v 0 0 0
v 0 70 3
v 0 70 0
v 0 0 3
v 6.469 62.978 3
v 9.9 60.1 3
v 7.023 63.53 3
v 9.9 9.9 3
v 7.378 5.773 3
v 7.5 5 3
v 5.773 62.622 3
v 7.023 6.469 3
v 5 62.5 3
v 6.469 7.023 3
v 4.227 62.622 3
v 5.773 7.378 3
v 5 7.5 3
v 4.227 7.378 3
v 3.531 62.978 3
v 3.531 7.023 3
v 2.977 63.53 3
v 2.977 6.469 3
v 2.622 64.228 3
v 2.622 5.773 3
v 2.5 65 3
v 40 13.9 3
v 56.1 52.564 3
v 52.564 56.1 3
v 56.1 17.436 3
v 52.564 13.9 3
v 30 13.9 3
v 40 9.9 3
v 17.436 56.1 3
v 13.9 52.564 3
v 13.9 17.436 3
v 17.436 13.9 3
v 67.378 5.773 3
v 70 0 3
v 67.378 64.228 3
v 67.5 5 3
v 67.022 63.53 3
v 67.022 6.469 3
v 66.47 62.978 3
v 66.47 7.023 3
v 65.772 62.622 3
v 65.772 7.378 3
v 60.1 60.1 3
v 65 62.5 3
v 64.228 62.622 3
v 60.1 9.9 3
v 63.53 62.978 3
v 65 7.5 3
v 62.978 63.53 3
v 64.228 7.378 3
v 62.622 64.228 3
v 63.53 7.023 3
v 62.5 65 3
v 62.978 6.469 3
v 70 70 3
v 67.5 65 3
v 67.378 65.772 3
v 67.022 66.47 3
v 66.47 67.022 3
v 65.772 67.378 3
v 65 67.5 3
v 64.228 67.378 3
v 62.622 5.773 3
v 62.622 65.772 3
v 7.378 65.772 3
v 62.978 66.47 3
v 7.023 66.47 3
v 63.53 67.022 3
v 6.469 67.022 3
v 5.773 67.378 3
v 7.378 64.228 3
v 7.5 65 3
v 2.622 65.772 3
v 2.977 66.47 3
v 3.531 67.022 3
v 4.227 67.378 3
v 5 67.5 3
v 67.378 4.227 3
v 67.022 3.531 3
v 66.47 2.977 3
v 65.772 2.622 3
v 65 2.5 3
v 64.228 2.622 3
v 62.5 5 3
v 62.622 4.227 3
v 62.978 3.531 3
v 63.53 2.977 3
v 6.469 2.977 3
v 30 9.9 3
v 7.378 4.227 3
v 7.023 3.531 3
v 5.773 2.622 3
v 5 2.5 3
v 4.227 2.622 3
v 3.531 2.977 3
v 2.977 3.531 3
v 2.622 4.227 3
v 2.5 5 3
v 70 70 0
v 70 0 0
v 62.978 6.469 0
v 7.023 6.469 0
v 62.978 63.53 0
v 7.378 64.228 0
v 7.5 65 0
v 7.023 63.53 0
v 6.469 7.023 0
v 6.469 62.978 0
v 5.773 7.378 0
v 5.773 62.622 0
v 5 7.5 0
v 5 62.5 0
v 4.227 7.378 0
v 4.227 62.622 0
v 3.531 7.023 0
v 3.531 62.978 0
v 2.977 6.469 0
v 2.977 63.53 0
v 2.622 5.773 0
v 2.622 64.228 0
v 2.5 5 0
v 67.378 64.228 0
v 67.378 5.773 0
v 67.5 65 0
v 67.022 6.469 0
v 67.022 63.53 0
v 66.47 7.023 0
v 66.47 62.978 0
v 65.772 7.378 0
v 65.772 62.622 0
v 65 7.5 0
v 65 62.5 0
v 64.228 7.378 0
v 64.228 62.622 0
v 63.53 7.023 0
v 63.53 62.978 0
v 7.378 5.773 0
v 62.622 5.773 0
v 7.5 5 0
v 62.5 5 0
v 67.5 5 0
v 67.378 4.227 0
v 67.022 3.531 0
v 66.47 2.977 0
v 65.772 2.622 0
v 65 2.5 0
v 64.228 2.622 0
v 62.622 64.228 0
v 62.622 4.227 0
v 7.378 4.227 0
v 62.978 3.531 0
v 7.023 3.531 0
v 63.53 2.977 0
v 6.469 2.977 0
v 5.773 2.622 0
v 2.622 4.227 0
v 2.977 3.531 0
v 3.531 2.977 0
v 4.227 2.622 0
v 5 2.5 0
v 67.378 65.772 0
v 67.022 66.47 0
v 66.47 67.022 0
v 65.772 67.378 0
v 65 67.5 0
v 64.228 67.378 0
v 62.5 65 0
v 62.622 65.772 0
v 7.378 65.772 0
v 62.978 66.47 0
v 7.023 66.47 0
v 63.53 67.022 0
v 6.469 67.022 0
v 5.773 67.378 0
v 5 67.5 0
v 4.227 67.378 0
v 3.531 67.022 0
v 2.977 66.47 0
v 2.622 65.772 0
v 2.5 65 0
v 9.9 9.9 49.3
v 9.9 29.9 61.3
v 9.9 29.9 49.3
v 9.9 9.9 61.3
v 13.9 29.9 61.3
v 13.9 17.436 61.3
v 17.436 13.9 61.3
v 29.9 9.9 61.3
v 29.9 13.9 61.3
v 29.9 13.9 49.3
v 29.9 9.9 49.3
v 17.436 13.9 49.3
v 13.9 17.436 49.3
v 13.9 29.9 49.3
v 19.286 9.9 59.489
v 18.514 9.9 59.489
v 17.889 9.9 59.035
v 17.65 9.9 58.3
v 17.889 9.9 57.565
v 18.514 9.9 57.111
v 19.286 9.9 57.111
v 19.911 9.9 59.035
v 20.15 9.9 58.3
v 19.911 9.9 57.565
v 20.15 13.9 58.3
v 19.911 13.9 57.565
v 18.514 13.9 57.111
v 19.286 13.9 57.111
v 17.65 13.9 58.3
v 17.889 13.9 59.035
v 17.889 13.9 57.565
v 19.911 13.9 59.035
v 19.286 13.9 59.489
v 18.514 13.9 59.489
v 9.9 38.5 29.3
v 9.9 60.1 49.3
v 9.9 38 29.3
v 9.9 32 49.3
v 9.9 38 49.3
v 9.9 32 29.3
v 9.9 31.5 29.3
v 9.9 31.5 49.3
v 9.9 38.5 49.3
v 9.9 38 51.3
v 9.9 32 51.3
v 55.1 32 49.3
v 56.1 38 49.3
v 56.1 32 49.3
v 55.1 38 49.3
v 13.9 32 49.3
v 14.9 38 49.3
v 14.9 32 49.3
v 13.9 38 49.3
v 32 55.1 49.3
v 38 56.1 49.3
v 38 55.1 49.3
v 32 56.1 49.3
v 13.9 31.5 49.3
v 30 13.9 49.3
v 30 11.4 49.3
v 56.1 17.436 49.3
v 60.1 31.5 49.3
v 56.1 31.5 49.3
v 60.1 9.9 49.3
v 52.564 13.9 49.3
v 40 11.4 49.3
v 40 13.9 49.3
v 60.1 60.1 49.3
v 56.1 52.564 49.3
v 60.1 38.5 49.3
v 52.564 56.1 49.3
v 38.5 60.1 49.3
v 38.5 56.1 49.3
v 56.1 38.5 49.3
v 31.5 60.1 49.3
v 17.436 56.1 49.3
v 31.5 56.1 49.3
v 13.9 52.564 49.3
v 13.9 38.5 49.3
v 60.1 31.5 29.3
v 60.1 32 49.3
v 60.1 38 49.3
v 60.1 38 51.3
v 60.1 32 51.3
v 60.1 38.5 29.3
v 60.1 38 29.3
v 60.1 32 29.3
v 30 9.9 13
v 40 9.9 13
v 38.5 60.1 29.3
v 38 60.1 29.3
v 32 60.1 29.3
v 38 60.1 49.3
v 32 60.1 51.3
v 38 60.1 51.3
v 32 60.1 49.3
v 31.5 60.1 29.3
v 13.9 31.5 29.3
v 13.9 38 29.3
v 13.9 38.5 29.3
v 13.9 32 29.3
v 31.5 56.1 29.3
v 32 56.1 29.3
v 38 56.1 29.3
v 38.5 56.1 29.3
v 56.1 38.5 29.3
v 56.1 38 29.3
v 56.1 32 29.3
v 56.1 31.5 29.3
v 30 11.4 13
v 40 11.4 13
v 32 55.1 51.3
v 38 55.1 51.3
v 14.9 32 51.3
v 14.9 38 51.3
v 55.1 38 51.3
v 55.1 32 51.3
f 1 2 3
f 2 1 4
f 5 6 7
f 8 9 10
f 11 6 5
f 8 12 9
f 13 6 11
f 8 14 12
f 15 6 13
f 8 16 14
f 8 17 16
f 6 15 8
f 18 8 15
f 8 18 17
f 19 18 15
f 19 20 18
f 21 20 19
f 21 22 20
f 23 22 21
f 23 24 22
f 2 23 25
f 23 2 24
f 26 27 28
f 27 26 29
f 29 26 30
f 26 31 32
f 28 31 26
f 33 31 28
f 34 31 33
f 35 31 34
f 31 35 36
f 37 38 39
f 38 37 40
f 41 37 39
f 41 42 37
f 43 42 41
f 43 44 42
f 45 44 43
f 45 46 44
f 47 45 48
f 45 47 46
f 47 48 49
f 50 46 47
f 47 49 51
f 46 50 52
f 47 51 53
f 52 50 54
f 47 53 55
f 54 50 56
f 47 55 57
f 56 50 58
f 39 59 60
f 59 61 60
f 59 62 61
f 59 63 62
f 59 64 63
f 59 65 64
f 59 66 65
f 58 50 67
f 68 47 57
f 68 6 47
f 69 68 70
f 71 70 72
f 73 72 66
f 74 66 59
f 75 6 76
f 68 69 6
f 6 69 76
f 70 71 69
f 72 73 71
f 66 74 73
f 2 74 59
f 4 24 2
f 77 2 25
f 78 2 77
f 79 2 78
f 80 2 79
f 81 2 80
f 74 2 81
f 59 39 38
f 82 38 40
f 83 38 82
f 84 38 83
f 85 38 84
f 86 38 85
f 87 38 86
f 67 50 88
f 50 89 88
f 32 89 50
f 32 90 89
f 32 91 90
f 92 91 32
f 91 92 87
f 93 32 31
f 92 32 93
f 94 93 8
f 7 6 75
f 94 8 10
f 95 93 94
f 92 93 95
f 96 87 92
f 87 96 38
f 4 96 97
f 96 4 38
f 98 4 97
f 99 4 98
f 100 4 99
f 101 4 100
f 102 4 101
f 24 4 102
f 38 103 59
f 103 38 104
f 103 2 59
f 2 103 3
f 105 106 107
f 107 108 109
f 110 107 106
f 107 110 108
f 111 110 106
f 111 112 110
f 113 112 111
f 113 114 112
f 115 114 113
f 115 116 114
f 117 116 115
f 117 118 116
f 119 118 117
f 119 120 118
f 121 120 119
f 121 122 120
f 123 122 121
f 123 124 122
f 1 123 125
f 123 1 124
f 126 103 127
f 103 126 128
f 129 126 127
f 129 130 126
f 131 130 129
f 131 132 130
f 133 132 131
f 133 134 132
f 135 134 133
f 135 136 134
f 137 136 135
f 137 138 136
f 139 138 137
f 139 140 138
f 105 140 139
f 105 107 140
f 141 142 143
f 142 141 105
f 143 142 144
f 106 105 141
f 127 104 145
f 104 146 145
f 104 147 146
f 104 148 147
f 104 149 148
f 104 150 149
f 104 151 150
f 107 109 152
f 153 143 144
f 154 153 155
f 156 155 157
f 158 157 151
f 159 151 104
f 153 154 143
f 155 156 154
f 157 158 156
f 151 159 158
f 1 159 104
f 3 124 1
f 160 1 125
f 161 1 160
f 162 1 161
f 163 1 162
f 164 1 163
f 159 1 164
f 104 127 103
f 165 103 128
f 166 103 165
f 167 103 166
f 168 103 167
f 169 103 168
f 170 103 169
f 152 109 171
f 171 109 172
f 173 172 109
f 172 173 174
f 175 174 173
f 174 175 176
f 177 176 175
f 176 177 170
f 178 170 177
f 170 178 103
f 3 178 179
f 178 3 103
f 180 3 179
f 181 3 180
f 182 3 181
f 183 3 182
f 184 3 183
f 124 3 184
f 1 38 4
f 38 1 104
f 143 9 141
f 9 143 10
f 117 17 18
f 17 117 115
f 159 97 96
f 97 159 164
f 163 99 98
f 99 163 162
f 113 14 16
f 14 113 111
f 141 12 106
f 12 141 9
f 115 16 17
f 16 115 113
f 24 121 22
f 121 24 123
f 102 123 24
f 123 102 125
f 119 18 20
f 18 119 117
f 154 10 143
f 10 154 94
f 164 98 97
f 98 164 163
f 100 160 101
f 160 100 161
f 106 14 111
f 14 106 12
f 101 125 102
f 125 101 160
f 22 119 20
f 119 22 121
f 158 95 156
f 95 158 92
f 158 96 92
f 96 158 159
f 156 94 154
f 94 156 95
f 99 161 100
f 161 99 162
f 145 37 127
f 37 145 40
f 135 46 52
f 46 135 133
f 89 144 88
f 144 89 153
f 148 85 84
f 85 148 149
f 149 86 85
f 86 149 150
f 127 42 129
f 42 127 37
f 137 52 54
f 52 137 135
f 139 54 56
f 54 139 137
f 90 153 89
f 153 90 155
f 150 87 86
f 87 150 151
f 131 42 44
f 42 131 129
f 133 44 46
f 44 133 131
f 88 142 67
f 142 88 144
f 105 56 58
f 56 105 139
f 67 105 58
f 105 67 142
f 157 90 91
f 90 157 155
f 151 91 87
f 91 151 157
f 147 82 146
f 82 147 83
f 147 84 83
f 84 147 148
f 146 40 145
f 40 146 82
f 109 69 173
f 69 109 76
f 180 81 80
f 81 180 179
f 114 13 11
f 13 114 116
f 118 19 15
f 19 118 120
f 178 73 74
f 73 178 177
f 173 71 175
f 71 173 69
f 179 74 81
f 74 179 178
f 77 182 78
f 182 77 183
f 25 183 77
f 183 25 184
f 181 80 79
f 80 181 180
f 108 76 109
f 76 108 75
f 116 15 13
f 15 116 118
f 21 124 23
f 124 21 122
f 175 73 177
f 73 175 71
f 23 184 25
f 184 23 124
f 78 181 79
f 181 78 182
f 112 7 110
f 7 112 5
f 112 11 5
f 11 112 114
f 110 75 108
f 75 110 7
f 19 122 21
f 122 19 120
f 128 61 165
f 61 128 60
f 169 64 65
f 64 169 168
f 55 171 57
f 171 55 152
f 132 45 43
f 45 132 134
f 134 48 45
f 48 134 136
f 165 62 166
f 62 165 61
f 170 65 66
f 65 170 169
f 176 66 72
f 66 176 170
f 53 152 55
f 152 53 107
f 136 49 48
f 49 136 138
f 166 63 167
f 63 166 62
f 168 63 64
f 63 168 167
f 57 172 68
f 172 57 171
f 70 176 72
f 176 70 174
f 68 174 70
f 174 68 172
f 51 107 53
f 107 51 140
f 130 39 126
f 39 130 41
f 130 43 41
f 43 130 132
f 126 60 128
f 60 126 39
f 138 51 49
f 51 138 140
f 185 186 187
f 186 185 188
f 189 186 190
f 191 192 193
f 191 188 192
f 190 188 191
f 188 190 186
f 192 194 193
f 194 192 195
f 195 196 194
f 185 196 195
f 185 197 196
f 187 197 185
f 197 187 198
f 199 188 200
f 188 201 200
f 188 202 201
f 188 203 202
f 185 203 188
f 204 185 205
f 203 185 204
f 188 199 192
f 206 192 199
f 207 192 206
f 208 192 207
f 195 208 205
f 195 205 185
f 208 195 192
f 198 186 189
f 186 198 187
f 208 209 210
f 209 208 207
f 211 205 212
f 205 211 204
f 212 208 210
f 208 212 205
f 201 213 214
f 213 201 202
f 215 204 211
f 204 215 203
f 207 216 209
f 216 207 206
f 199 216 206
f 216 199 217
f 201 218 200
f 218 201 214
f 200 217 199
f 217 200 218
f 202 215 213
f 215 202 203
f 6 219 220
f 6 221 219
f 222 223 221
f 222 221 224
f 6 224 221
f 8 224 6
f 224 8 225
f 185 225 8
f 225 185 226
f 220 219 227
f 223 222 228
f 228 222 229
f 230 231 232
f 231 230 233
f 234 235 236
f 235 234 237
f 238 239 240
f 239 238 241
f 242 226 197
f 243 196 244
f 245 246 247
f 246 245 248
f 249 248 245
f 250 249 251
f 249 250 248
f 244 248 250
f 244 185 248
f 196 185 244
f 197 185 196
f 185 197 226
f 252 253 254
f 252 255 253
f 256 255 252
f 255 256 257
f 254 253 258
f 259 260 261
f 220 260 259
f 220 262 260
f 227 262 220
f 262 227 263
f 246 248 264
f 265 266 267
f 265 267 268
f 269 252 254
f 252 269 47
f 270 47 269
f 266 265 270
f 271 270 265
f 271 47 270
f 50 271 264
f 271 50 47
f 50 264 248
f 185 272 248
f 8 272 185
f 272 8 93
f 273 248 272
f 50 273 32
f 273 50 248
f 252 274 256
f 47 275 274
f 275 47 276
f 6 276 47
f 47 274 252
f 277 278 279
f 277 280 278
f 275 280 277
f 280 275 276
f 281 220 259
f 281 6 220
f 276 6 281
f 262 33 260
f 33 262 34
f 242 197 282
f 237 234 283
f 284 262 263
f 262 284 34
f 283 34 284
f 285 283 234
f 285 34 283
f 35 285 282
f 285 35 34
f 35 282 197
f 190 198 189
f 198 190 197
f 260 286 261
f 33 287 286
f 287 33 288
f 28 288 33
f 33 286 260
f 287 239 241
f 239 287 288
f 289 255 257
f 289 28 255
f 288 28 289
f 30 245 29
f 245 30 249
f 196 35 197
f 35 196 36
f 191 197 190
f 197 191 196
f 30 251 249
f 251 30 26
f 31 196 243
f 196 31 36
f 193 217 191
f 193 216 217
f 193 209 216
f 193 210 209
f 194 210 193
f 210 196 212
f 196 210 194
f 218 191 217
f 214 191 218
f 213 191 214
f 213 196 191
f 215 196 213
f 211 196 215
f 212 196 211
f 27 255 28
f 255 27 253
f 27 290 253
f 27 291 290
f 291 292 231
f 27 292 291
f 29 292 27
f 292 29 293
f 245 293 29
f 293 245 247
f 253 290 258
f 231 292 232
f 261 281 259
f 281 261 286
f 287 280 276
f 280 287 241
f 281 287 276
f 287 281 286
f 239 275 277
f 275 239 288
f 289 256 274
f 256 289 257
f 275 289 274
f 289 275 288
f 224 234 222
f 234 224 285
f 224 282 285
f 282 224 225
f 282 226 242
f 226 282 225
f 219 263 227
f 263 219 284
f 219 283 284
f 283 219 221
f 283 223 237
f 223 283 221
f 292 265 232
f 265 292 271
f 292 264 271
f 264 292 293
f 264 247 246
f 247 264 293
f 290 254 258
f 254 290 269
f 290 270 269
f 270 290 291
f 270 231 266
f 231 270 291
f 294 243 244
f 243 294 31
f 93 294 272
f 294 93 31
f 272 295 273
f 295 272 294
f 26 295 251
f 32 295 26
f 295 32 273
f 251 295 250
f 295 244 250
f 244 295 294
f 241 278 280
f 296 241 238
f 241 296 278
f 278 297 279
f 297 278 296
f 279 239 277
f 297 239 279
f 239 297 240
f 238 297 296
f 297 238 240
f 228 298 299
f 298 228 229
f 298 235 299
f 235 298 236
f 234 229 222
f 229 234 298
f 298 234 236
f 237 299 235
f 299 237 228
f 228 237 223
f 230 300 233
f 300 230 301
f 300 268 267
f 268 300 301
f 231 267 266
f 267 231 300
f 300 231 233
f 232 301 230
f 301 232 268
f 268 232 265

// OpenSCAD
motorSide = 42.2;
motorHeight = 46.3;
motorMountingHoles = 31;
motorHolesLength = 4.5;

baseSide = 70;
baseHeight = 3;

wallWidth = 4;

// mounting base plate
difference()
{
    cube([baseSide, baseSide, baseHeight]);
    
    translate([5, 5, 0]) cylinder(d=5, h=baseHeight, $fn=20);
    translate([baseSide-5, 5, 0]) cylinder(d=5, h=baseHeight, $fn=20);
    translate([5, baseSide-5, 0]) cylinder(d=5, h=baseHeight, $fn=20);
    translate([baseSide-5, baseSide-5, 0]) cylinder(d=5, h=baseHeight, $fn=20);
    
}
// main enclosure
translate([(baseSide-motorSide)/2-wallWidth, (baseSide-motorSide)/2-wallWidth, baseHeight])
{
    difference()
    {
        union()
        {
            cube([motorSide+wallWidth*2, motorSide+wallWidth*2, motorHeight]);
            translate([0, 0, motorHeight])
            {
               difference()
               {
                   // thread hole and support
                   cube([20, 20, 12]);
                   translate([9, 0, 9]) rotate([-90, 0, 0]) cylinder(d=2.5, h=10, $fn=10);
               }
           }
       }
   
        
        translate([wallWidth+sqrt(2)*2.5, wallWidth, 0])
            minkowski()
            {
                cube([motorSide-sqrt(2)*5, motorSide-sqrt(2)*5, motorHeight]);
                rotate([0, 0, 45]) cube([5, 5, motorHeight]);
            }
         
        // latches   
        translate([motorSide/2+wallWidth-3.5, motorSide+wallWidth, motorHeight-20])        
            cube([0.5, wallWidth, 20]);
        translate([motorSide/2+wallWidth+3, motorSide+wallWidth, motorHeight-20])
            cube([0.5, wallWidth, 20]);
            
        translate([0, motorSide/2+wallWidth-3.5, motorHeight-20])
            cube([wallWidth, 0.5, 20]);
        translate([0, motorSide/2+wallWidth+3, motorHeight-20])
            cube([wallWidth, 0.5, 20]);
            
        translate([motorSide+wallWidth, motorSide/2+wallWidth-3.5, motorHeight-20])
            cube([wallWidth, 0.5, 20]);
        translate([motorSide+wallWidth, motorSide/2+wallWidth+3, motorHeight-20])
            cube([wallWidth, 0.5, 20]);
       
        // wire hole
        translate([motorSide/2+wallWidth-5, 0, 0])
            cube([10, wallWidth, 10]);
            
        // wire shaft
        translate([motorSide/2+wallWidth-5, wallWidth-2.5, 0])
            cube([10, 2.5, motorHeight]);
    }
    
    // latches top
    translate([motorSide/2+wallWidth-3, motorSide+wallWidth-1, motorHeight])
        cube([6, wallWidth+1, 2]);
    translate([0, motorSide/2+wallWidth-3, motorHeight])
        cube([wallWidth+1, 6, 2]);    
    translate([motorSide+wallWidth-1, motorSide/2+wallWidth-3, motorHeight])
        cube([wallWidth+1, 6, 2]);    
  
}
